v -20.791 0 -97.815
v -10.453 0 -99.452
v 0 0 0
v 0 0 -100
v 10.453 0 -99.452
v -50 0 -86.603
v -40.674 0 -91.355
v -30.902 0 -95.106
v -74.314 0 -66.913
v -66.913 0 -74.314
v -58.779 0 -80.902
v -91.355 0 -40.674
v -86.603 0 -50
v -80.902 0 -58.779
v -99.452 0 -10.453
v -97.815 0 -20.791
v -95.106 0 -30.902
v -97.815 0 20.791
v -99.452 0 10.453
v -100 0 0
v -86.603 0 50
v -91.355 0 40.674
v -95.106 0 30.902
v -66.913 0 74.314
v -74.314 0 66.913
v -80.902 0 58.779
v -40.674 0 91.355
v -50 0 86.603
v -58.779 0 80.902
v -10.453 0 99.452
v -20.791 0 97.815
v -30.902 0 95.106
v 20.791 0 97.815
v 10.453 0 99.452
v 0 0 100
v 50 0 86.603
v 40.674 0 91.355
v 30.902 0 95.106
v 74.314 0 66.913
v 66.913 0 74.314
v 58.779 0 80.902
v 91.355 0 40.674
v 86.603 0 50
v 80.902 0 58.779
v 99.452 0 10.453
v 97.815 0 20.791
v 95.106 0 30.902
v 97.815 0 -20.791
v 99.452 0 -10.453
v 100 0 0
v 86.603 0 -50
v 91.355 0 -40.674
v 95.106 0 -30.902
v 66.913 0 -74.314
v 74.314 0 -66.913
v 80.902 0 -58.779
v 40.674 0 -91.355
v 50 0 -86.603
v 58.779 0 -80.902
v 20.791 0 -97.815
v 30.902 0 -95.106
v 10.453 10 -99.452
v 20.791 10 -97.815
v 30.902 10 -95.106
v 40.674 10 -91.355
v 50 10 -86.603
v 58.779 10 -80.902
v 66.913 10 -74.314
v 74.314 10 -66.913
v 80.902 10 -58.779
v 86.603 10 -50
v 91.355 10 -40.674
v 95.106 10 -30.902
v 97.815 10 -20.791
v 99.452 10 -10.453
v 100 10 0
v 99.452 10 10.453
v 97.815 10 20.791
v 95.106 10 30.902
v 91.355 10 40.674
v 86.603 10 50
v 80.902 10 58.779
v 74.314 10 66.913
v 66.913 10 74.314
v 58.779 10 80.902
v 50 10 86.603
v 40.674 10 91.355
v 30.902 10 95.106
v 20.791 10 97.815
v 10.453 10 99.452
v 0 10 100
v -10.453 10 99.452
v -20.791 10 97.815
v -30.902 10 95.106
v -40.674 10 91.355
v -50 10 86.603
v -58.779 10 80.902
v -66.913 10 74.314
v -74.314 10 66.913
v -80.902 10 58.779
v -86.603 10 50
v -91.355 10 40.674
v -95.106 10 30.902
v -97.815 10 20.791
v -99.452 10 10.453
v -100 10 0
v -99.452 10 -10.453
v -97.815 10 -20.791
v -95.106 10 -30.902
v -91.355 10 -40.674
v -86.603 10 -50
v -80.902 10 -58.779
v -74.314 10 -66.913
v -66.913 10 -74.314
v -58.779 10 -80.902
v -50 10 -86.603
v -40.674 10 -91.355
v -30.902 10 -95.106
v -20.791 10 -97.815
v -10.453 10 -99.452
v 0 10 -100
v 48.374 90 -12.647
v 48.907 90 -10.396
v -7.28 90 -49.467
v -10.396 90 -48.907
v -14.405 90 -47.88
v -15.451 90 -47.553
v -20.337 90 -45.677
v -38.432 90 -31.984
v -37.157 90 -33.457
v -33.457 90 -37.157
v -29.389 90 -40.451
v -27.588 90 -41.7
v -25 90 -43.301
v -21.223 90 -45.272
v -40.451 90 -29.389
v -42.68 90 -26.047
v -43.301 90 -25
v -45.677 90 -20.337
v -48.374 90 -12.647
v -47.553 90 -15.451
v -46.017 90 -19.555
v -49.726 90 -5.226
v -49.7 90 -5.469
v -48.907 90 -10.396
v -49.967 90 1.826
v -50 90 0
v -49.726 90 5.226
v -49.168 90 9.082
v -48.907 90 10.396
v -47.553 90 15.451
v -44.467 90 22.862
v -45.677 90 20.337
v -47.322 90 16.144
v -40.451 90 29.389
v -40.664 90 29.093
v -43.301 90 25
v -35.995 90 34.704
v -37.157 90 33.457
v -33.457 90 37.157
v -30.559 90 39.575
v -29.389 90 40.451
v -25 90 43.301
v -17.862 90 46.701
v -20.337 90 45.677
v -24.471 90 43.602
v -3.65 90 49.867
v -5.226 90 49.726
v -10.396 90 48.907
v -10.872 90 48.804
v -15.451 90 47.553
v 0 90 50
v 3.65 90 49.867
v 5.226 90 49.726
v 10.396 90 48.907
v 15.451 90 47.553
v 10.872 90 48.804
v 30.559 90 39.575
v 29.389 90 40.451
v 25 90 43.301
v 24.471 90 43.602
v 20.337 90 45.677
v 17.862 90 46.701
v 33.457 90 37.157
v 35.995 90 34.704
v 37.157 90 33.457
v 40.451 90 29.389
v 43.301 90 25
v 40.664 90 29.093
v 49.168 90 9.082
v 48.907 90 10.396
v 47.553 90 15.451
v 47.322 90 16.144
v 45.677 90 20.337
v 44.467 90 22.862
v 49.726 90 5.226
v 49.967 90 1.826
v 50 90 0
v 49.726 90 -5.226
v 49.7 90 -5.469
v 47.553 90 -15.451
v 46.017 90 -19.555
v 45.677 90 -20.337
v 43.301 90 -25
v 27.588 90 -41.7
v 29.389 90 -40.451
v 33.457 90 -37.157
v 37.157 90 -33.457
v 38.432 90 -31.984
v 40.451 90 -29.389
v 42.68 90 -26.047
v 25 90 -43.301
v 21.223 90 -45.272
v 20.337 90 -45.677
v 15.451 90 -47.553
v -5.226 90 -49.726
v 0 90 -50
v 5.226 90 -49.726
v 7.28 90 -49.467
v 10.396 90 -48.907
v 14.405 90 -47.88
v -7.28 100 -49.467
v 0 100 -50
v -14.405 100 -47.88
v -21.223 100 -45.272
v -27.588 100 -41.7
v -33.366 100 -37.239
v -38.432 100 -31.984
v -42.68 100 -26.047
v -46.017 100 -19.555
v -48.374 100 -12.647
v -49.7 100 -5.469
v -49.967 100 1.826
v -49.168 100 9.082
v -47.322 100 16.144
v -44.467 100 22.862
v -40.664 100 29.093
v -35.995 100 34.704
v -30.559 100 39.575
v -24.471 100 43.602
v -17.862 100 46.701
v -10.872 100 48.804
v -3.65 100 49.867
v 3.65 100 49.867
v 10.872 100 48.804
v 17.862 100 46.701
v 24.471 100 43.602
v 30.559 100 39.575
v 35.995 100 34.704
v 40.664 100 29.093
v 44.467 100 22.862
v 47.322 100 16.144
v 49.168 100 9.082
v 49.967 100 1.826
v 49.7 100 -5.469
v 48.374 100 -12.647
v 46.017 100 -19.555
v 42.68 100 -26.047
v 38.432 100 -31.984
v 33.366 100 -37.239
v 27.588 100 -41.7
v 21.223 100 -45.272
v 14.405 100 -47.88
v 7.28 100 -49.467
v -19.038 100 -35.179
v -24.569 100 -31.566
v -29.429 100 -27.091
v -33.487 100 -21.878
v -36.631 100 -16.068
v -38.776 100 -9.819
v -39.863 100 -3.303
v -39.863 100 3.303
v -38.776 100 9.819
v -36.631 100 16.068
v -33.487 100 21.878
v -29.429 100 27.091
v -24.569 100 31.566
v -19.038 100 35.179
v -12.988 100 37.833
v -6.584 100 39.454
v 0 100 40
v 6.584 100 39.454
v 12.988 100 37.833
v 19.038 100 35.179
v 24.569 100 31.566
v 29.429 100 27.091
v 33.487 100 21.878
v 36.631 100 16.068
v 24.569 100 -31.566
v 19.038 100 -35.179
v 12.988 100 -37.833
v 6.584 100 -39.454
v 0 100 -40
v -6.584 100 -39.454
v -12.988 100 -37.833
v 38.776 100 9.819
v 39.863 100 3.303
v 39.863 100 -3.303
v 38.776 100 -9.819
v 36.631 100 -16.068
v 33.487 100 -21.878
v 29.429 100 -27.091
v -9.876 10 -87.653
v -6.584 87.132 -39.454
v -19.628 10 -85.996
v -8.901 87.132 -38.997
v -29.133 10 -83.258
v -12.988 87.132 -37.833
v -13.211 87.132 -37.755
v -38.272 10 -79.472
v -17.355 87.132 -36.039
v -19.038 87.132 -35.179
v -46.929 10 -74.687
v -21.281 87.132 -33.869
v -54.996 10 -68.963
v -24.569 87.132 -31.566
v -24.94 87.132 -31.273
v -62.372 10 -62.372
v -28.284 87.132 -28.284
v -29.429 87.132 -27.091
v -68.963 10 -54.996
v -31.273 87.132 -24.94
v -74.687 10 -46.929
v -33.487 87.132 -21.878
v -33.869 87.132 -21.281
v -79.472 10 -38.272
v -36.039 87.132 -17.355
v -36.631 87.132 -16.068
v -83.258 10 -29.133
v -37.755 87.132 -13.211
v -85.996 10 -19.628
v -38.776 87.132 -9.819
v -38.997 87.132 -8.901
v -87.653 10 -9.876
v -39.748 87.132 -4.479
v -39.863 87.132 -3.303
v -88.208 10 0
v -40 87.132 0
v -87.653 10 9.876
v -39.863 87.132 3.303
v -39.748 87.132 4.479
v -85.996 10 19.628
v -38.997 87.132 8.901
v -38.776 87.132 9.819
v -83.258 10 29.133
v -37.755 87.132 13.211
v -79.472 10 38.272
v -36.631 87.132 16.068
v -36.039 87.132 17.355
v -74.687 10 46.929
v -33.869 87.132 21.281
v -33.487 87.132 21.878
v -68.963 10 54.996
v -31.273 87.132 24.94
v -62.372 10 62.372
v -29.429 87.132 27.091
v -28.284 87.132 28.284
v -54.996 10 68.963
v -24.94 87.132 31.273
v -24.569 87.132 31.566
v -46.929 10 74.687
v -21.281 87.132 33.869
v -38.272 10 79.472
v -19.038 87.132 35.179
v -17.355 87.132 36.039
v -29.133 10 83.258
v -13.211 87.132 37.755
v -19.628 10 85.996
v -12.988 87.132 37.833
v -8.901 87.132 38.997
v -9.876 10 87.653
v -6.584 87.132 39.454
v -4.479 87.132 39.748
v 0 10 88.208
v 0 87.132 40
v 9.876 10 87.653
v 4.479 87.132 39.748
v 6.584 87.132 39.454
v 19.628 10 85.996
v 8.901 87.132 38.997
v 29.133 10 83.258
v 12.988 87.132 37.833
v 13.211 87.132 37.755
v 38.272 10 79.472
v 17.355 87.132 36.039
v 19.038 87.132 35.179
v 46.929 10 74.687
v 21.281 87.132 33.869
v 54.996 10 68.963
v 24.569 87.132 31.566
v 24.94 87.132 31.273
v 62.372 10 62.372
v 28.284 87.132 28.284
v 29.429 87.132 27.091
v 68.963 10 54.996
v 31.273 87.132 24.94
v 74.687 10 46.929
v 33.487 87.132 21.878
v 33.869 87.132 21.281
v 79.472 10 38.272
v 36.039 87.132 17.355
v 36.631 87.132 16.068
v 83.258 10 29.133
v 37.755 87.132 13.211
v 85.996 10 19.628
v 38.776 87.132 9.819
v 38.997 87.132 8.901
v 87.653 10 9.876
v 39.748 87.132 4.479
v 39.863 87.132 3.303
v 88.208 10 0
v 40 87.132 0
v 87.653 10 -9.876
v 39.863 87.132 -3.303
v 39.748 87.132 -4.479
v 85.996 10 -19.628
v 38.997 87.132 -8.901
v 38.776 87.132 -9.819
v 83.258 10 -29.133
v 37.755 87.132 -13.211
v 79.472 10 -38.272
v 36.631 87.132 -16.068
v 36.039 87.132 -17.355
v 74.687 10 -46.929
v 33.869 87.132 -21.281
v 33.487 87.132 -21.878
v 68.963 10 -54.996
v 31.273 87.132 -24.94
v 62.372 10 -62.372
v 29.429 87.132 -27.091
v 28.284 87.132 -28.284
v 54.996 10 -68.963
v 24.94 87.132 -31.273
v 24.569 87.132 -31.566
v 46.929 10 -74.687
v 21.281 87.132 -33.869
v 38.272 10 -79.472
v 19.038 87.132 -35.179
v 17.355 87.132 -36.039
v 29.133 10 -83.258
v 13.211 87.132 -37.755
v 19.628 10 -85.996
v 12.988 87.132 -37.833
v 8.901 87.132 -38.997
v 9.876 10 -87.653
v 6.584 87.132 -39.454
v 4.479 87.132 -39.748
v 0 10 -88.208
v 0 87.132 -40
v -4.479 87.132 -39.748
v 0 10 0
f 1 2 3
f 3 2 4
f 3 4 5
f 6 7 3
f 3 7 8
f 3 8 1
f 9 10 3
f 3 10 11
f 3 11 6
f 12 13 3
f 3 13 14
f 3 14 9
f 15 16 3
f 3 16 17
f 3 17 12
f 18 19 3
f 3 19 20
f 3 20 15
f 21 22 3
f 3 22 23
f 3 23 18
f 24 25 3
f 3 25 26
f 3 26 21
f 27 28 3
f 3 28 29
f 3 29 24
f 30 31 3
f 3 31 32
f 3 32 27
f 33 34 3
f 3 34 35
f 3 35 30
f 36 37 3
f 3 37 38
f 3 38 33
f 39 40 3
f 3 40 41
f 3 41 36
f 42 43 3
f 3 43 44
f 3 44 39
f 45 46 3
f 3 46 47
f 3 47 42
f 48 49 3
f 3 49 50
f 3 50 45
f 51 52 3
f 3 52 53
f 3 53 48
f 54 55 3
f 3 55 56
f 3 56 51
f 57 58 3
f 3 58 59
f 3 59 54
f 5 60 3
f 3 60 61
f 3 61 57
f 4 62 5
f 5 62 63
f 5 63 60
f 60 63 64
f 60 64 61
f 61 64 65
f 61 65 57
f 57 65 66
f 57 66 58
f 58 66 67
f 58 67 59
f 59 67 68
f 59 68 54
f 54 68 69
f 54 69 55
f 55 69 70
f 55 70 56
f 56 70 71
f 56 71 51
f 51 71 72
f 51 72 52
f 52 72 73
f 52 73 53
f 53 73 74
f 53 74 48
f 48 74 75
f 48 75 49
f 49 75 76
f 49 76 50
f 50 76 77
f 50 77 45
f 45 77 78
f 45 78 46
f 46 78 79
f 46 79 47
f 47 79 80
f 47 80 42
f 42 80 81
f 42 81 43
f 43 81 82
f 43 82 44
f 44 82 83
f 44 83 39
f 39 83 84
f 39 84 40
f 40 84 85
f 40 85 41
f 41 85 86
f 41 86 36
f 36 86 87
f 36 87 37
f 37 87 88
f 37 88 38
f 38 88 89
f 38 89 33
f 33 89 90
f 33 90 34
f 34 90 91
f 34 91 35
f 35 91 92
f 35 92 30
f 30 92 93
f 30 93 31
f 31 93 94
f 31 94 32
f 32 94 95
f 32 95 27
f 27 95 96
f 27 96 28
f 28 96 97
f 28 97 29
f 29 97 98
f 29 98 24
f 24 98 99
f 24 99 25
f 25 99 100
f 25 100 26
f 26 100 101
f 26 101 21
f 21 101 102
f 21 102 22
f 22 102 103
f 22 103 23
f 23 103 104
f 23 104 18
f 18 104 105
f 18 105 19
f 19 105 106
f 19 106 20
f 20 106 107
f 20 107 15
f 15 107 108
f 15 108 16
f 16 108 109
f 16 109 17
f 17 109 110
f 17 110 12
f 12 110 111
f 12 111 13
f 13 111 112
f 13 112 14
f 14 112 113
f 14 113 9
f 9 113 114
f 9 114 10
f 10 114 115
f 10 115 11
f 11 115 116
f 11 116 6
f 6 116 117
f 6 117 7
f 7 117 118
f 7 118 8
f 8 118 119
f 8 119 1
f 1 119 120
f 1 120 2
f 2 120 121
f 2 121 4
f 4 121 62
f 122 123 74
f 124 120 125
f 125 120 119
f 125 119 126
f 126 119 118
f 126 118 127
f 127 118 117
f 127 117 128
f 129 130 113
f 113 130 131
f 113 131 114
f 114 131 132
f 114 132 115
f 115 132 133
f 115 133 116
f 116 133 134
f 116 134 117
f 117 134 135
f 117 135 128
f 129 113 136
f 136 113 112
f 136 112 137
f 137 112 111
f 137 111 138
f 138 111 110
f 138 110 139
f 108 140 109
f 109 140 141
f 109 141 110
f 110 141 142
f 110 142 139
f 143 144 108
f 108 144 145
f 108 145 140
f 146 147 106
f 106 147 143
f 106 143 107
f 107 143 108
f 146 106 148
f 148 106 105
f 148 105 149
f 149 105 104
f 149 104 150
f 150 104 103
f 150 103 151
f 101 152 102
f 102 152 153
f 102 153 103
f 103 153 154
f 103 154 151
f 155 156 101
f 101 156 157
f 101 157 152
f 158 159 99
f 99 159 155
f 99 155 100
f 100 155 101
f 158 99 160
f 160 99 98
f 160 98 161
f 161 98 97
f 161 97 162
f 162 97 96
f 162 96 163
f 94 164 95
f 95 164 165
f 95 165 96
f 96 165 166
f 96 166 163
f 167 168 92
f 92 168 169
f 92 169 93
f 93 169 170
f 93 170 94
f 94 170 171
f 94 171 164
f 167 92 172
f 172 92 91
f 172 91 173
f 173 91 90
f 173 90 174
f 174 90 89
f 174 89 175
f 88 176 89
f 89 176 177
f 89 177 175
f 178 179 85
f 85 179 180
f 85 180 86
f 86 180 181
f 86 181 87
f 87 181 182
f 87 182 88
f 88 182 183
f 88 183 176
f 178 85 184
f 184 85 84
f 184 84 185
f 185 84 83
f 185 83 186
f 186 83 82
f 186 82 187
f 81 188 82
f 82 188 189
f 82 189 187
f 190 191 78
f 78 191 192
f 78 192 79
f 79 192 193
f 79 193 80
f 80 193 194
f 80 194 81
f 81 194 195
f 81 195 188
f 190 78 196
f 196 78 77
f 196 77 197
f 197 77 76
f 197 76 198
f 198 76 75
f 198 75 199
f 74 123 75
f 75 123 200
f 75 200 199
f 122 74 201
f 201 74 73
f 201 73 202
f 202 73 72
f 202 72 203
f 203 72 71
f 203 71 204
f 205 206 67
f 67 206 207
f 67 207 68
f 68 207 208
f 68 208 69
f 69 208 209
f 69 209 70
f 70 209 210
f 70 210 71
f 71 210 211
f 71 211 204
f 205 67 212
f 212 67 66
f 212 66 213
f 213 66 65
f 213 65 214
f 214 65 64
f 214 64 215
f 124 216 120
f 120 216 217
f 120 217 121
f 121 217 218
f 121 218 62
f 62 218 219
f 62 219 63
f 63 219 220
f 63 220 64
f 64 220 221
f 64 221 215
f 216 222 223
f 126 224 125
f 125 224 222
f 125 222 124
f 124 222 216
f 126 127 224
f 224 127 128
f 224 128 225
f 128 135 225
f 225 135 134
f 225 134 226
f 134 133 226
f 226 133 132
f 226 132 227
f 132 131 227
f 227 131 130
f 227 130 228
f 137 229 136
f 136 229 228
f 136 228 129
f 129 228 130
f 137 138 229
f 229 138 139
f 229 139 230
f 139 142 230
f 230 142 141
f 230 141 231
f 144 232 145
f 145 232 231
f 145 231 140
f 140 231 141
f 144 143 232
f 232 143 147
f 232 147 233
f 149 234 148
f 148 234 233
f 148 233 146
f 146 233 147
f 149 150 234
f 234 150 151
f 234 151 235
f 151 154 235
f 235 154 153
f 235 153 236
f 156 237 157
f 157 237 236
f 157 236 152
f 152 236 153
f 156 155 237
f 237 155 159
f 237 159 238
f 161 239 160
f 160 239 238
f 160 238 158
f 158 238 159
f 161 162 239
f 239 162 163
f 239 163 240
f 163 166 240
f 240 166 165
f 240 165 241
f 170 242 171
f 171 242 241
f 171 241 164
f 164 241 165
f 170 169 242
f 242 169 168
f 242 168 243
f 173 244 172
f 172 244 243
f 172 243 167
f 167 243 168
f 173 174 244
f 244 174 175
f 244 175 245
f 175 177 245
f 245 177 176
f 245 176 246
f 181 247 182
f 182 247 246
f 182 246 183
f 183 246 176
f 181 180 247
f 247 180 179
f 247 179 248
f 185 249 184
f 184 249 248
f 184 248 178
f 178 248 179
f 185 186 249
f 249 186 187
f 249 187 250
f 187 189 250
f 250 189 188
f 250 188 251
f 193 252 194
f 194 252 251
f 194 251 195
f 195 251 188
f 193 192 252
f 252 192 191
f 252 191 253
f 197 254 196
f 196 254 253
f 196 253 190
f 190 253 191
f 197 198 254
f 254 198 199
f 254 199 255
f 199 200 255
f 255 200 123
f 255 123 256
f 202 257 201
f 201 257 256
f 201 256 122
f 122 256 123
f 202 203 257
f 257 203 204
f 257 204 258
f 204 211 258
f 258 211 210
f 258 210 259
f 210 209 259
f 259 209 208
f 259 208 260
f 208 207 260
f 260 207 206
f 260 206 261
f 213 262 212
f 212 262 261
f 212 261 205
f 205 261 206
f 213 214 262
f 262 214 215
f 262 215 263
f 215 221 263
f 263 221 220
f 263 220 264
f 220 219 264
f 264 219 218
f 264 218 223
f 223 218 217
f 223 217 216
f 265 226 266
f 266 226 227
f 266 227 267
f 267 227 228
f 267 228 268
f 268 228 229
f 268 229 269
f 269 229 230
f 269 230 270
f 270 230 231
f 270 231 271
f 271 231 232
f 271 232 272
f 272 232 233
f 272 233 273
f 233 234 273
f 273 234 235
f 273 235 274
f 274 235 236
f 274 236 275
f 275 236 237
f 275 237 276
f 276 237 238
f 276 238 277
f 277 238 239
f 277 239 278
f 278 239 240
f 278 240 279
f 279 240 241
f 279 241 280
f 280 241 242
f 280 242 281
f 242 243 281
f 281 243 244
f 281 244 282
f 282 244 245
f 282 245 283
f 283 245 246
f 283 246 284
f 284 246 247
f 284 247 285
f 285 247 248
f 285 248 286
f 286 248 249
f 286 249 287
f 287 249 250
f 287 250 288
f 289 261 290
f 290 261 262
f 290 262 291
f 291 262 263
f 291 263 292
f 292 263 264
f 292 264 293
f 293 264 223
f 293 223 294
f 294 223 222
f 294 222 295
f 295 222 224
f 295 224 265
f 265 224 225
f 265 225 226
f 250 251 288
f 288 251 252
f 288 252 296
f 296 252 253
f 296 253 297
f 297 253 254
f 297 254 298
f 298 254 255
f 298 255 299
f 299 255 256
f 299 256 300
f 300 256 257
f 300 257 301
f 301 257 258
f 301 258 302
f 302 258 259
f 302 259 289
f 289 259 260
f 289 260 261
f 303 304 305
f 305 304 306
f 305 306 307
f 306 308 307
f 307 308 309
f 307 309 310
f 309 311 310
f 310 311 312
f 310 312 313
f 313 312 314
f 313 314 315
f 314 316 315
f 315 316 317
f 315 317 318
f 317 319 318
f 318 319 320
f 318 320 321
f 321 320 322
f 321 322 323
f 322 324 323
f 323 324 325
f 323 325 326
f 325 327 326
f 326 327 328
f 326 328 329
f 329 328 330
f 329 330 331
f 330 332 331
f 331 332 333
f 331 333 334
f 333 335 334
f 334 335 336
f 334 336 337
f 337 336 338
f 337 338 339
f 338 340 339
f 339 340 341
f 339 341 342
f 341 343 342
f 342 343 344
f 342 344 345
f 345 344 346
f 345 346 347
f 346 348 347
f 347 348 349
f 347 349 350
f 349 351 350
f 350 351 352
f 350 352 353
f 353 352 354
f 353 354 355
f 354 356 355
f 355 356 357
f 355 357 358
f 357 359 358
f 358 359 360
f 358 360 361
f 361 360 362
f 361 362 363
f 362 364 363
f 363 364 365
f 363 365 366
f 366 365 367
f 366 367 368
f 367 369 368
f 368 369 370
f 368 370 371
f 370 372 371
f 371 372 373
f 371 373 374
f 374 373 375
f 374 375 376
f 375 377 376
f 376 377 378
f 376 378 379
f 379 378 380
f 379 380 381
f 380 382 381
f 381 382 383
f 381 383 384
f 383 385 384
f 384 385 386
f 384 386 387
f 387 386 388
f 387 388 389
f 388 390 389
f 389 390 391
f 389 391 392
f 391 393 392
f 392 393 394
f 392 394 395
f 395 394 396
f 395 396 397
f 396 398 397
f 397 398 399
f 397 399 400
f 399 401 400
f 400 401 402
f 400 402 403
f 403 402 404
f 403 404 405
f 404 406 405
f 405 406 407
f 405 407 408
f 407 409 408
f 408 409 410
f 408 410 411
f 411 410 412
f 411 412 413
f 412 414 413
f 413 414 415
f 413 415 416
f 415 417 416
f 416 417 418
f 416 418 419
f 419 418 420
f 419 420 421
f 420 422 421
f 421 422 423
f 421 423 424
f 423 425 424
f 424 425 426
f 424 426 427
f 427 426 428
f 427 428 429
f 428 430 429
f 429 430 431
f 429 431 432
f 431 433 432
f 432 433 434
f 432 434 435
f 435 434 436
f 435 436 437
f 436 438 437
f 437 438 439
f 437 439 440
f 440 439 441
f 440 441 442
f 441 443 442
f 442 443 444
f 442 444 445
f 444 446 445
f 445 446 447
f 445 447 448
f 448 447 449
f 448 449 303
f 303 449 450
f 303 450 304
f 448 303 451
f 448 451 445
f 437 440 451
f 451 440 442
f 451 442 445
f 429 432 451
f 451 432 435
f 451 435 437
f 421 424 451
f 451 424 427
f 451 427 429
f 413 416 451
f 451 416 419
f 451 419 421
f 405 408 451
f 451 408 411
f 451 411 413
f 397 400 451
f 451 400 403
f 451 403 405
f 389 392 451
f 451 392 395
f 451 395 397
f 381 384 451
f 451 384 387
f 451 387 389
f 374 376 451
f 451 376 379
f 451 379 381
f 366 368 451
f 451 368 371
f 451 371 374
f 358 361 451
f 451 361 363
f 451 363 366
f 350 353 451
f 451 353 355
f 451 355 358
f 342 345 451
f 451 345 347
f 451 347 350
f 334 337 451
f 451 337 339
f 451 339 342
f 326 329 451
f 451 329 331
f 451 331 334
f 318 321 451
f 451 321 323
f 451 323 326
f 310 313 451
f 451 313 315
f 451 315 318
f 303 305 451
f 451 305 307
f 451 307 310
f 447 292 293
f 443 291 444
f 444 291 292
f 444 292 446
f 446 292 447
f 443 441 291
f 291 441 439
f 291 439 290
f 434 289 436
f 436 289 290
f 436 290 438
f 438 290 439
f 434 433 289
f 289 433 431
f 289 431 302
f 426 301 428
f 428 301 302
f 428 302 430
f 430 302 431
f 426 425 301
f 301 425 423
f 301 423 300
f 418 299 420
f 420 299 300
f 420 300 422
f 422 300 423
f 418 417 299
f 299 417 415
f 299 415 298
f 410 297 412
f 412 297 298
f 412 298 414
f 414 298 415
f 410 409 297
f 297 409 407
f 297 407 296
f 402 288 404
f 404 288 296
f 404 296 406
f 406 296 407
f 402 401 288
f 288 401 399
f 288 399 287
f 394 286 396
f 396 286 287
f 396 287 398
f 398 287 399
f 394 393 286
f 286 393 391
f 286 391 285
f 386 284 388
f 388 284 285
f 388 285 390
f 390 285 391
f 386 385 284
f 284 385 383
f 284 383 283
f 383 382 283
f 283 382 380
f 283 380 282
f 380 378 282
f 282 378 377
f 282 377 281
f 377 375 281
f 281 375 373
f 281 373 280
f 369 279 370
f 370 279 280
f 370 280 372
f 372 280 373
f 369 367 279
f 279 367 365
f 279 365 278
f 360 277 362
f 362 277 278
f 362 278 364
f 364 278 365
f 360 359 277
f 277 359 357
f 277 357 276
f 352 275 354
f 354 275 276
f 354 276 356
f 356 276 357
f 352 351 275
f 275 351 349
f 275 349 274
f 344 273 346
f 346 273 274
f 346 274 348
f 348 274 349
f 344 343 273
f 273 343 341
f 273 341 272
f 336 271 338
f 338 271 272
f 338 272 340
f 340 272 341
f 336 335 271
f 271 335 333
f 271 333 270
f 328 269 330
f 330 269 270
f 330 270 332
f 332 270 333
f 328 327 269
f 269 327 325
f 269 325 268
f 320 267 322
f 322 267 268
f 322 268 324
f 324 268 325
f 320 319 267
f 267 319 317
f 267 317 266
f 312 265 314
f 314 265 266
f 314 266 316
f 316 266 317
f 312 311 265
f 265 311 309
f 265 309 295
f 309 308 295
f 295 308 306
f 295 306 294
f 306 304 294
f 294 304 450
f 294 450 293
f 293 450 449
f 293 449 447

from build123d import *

# Parameters (mm, degrees)
SHELL1_T = -10


with BuildPart() as part:
    # Sketch2 → Revolve1 (revolve)
    with BuildSketch(Plane.XY, mode=Mode.PRIVATE) as revolve1_sk:
        Polygon((0, 0), (100, 0), (100, 10), (50, 90), (50, 100), (0, 100), align=None)
    revolve(revolve1_sk.sketch.rotate(Axis((0, 0, 0), (0, 1, 0)), 90), axis=Axis((0, 0, 0), (0, 1, 0)))

    # Shell1
    shell1_openings = [part.faces().sort_by_distance(p)[0] for p in [
        (0, 100, 0),
    ]]
    offset(amount=SHELL1_T, openings=shell1_openings, kind=Kind.INTERSECTION)


solid = part.part
